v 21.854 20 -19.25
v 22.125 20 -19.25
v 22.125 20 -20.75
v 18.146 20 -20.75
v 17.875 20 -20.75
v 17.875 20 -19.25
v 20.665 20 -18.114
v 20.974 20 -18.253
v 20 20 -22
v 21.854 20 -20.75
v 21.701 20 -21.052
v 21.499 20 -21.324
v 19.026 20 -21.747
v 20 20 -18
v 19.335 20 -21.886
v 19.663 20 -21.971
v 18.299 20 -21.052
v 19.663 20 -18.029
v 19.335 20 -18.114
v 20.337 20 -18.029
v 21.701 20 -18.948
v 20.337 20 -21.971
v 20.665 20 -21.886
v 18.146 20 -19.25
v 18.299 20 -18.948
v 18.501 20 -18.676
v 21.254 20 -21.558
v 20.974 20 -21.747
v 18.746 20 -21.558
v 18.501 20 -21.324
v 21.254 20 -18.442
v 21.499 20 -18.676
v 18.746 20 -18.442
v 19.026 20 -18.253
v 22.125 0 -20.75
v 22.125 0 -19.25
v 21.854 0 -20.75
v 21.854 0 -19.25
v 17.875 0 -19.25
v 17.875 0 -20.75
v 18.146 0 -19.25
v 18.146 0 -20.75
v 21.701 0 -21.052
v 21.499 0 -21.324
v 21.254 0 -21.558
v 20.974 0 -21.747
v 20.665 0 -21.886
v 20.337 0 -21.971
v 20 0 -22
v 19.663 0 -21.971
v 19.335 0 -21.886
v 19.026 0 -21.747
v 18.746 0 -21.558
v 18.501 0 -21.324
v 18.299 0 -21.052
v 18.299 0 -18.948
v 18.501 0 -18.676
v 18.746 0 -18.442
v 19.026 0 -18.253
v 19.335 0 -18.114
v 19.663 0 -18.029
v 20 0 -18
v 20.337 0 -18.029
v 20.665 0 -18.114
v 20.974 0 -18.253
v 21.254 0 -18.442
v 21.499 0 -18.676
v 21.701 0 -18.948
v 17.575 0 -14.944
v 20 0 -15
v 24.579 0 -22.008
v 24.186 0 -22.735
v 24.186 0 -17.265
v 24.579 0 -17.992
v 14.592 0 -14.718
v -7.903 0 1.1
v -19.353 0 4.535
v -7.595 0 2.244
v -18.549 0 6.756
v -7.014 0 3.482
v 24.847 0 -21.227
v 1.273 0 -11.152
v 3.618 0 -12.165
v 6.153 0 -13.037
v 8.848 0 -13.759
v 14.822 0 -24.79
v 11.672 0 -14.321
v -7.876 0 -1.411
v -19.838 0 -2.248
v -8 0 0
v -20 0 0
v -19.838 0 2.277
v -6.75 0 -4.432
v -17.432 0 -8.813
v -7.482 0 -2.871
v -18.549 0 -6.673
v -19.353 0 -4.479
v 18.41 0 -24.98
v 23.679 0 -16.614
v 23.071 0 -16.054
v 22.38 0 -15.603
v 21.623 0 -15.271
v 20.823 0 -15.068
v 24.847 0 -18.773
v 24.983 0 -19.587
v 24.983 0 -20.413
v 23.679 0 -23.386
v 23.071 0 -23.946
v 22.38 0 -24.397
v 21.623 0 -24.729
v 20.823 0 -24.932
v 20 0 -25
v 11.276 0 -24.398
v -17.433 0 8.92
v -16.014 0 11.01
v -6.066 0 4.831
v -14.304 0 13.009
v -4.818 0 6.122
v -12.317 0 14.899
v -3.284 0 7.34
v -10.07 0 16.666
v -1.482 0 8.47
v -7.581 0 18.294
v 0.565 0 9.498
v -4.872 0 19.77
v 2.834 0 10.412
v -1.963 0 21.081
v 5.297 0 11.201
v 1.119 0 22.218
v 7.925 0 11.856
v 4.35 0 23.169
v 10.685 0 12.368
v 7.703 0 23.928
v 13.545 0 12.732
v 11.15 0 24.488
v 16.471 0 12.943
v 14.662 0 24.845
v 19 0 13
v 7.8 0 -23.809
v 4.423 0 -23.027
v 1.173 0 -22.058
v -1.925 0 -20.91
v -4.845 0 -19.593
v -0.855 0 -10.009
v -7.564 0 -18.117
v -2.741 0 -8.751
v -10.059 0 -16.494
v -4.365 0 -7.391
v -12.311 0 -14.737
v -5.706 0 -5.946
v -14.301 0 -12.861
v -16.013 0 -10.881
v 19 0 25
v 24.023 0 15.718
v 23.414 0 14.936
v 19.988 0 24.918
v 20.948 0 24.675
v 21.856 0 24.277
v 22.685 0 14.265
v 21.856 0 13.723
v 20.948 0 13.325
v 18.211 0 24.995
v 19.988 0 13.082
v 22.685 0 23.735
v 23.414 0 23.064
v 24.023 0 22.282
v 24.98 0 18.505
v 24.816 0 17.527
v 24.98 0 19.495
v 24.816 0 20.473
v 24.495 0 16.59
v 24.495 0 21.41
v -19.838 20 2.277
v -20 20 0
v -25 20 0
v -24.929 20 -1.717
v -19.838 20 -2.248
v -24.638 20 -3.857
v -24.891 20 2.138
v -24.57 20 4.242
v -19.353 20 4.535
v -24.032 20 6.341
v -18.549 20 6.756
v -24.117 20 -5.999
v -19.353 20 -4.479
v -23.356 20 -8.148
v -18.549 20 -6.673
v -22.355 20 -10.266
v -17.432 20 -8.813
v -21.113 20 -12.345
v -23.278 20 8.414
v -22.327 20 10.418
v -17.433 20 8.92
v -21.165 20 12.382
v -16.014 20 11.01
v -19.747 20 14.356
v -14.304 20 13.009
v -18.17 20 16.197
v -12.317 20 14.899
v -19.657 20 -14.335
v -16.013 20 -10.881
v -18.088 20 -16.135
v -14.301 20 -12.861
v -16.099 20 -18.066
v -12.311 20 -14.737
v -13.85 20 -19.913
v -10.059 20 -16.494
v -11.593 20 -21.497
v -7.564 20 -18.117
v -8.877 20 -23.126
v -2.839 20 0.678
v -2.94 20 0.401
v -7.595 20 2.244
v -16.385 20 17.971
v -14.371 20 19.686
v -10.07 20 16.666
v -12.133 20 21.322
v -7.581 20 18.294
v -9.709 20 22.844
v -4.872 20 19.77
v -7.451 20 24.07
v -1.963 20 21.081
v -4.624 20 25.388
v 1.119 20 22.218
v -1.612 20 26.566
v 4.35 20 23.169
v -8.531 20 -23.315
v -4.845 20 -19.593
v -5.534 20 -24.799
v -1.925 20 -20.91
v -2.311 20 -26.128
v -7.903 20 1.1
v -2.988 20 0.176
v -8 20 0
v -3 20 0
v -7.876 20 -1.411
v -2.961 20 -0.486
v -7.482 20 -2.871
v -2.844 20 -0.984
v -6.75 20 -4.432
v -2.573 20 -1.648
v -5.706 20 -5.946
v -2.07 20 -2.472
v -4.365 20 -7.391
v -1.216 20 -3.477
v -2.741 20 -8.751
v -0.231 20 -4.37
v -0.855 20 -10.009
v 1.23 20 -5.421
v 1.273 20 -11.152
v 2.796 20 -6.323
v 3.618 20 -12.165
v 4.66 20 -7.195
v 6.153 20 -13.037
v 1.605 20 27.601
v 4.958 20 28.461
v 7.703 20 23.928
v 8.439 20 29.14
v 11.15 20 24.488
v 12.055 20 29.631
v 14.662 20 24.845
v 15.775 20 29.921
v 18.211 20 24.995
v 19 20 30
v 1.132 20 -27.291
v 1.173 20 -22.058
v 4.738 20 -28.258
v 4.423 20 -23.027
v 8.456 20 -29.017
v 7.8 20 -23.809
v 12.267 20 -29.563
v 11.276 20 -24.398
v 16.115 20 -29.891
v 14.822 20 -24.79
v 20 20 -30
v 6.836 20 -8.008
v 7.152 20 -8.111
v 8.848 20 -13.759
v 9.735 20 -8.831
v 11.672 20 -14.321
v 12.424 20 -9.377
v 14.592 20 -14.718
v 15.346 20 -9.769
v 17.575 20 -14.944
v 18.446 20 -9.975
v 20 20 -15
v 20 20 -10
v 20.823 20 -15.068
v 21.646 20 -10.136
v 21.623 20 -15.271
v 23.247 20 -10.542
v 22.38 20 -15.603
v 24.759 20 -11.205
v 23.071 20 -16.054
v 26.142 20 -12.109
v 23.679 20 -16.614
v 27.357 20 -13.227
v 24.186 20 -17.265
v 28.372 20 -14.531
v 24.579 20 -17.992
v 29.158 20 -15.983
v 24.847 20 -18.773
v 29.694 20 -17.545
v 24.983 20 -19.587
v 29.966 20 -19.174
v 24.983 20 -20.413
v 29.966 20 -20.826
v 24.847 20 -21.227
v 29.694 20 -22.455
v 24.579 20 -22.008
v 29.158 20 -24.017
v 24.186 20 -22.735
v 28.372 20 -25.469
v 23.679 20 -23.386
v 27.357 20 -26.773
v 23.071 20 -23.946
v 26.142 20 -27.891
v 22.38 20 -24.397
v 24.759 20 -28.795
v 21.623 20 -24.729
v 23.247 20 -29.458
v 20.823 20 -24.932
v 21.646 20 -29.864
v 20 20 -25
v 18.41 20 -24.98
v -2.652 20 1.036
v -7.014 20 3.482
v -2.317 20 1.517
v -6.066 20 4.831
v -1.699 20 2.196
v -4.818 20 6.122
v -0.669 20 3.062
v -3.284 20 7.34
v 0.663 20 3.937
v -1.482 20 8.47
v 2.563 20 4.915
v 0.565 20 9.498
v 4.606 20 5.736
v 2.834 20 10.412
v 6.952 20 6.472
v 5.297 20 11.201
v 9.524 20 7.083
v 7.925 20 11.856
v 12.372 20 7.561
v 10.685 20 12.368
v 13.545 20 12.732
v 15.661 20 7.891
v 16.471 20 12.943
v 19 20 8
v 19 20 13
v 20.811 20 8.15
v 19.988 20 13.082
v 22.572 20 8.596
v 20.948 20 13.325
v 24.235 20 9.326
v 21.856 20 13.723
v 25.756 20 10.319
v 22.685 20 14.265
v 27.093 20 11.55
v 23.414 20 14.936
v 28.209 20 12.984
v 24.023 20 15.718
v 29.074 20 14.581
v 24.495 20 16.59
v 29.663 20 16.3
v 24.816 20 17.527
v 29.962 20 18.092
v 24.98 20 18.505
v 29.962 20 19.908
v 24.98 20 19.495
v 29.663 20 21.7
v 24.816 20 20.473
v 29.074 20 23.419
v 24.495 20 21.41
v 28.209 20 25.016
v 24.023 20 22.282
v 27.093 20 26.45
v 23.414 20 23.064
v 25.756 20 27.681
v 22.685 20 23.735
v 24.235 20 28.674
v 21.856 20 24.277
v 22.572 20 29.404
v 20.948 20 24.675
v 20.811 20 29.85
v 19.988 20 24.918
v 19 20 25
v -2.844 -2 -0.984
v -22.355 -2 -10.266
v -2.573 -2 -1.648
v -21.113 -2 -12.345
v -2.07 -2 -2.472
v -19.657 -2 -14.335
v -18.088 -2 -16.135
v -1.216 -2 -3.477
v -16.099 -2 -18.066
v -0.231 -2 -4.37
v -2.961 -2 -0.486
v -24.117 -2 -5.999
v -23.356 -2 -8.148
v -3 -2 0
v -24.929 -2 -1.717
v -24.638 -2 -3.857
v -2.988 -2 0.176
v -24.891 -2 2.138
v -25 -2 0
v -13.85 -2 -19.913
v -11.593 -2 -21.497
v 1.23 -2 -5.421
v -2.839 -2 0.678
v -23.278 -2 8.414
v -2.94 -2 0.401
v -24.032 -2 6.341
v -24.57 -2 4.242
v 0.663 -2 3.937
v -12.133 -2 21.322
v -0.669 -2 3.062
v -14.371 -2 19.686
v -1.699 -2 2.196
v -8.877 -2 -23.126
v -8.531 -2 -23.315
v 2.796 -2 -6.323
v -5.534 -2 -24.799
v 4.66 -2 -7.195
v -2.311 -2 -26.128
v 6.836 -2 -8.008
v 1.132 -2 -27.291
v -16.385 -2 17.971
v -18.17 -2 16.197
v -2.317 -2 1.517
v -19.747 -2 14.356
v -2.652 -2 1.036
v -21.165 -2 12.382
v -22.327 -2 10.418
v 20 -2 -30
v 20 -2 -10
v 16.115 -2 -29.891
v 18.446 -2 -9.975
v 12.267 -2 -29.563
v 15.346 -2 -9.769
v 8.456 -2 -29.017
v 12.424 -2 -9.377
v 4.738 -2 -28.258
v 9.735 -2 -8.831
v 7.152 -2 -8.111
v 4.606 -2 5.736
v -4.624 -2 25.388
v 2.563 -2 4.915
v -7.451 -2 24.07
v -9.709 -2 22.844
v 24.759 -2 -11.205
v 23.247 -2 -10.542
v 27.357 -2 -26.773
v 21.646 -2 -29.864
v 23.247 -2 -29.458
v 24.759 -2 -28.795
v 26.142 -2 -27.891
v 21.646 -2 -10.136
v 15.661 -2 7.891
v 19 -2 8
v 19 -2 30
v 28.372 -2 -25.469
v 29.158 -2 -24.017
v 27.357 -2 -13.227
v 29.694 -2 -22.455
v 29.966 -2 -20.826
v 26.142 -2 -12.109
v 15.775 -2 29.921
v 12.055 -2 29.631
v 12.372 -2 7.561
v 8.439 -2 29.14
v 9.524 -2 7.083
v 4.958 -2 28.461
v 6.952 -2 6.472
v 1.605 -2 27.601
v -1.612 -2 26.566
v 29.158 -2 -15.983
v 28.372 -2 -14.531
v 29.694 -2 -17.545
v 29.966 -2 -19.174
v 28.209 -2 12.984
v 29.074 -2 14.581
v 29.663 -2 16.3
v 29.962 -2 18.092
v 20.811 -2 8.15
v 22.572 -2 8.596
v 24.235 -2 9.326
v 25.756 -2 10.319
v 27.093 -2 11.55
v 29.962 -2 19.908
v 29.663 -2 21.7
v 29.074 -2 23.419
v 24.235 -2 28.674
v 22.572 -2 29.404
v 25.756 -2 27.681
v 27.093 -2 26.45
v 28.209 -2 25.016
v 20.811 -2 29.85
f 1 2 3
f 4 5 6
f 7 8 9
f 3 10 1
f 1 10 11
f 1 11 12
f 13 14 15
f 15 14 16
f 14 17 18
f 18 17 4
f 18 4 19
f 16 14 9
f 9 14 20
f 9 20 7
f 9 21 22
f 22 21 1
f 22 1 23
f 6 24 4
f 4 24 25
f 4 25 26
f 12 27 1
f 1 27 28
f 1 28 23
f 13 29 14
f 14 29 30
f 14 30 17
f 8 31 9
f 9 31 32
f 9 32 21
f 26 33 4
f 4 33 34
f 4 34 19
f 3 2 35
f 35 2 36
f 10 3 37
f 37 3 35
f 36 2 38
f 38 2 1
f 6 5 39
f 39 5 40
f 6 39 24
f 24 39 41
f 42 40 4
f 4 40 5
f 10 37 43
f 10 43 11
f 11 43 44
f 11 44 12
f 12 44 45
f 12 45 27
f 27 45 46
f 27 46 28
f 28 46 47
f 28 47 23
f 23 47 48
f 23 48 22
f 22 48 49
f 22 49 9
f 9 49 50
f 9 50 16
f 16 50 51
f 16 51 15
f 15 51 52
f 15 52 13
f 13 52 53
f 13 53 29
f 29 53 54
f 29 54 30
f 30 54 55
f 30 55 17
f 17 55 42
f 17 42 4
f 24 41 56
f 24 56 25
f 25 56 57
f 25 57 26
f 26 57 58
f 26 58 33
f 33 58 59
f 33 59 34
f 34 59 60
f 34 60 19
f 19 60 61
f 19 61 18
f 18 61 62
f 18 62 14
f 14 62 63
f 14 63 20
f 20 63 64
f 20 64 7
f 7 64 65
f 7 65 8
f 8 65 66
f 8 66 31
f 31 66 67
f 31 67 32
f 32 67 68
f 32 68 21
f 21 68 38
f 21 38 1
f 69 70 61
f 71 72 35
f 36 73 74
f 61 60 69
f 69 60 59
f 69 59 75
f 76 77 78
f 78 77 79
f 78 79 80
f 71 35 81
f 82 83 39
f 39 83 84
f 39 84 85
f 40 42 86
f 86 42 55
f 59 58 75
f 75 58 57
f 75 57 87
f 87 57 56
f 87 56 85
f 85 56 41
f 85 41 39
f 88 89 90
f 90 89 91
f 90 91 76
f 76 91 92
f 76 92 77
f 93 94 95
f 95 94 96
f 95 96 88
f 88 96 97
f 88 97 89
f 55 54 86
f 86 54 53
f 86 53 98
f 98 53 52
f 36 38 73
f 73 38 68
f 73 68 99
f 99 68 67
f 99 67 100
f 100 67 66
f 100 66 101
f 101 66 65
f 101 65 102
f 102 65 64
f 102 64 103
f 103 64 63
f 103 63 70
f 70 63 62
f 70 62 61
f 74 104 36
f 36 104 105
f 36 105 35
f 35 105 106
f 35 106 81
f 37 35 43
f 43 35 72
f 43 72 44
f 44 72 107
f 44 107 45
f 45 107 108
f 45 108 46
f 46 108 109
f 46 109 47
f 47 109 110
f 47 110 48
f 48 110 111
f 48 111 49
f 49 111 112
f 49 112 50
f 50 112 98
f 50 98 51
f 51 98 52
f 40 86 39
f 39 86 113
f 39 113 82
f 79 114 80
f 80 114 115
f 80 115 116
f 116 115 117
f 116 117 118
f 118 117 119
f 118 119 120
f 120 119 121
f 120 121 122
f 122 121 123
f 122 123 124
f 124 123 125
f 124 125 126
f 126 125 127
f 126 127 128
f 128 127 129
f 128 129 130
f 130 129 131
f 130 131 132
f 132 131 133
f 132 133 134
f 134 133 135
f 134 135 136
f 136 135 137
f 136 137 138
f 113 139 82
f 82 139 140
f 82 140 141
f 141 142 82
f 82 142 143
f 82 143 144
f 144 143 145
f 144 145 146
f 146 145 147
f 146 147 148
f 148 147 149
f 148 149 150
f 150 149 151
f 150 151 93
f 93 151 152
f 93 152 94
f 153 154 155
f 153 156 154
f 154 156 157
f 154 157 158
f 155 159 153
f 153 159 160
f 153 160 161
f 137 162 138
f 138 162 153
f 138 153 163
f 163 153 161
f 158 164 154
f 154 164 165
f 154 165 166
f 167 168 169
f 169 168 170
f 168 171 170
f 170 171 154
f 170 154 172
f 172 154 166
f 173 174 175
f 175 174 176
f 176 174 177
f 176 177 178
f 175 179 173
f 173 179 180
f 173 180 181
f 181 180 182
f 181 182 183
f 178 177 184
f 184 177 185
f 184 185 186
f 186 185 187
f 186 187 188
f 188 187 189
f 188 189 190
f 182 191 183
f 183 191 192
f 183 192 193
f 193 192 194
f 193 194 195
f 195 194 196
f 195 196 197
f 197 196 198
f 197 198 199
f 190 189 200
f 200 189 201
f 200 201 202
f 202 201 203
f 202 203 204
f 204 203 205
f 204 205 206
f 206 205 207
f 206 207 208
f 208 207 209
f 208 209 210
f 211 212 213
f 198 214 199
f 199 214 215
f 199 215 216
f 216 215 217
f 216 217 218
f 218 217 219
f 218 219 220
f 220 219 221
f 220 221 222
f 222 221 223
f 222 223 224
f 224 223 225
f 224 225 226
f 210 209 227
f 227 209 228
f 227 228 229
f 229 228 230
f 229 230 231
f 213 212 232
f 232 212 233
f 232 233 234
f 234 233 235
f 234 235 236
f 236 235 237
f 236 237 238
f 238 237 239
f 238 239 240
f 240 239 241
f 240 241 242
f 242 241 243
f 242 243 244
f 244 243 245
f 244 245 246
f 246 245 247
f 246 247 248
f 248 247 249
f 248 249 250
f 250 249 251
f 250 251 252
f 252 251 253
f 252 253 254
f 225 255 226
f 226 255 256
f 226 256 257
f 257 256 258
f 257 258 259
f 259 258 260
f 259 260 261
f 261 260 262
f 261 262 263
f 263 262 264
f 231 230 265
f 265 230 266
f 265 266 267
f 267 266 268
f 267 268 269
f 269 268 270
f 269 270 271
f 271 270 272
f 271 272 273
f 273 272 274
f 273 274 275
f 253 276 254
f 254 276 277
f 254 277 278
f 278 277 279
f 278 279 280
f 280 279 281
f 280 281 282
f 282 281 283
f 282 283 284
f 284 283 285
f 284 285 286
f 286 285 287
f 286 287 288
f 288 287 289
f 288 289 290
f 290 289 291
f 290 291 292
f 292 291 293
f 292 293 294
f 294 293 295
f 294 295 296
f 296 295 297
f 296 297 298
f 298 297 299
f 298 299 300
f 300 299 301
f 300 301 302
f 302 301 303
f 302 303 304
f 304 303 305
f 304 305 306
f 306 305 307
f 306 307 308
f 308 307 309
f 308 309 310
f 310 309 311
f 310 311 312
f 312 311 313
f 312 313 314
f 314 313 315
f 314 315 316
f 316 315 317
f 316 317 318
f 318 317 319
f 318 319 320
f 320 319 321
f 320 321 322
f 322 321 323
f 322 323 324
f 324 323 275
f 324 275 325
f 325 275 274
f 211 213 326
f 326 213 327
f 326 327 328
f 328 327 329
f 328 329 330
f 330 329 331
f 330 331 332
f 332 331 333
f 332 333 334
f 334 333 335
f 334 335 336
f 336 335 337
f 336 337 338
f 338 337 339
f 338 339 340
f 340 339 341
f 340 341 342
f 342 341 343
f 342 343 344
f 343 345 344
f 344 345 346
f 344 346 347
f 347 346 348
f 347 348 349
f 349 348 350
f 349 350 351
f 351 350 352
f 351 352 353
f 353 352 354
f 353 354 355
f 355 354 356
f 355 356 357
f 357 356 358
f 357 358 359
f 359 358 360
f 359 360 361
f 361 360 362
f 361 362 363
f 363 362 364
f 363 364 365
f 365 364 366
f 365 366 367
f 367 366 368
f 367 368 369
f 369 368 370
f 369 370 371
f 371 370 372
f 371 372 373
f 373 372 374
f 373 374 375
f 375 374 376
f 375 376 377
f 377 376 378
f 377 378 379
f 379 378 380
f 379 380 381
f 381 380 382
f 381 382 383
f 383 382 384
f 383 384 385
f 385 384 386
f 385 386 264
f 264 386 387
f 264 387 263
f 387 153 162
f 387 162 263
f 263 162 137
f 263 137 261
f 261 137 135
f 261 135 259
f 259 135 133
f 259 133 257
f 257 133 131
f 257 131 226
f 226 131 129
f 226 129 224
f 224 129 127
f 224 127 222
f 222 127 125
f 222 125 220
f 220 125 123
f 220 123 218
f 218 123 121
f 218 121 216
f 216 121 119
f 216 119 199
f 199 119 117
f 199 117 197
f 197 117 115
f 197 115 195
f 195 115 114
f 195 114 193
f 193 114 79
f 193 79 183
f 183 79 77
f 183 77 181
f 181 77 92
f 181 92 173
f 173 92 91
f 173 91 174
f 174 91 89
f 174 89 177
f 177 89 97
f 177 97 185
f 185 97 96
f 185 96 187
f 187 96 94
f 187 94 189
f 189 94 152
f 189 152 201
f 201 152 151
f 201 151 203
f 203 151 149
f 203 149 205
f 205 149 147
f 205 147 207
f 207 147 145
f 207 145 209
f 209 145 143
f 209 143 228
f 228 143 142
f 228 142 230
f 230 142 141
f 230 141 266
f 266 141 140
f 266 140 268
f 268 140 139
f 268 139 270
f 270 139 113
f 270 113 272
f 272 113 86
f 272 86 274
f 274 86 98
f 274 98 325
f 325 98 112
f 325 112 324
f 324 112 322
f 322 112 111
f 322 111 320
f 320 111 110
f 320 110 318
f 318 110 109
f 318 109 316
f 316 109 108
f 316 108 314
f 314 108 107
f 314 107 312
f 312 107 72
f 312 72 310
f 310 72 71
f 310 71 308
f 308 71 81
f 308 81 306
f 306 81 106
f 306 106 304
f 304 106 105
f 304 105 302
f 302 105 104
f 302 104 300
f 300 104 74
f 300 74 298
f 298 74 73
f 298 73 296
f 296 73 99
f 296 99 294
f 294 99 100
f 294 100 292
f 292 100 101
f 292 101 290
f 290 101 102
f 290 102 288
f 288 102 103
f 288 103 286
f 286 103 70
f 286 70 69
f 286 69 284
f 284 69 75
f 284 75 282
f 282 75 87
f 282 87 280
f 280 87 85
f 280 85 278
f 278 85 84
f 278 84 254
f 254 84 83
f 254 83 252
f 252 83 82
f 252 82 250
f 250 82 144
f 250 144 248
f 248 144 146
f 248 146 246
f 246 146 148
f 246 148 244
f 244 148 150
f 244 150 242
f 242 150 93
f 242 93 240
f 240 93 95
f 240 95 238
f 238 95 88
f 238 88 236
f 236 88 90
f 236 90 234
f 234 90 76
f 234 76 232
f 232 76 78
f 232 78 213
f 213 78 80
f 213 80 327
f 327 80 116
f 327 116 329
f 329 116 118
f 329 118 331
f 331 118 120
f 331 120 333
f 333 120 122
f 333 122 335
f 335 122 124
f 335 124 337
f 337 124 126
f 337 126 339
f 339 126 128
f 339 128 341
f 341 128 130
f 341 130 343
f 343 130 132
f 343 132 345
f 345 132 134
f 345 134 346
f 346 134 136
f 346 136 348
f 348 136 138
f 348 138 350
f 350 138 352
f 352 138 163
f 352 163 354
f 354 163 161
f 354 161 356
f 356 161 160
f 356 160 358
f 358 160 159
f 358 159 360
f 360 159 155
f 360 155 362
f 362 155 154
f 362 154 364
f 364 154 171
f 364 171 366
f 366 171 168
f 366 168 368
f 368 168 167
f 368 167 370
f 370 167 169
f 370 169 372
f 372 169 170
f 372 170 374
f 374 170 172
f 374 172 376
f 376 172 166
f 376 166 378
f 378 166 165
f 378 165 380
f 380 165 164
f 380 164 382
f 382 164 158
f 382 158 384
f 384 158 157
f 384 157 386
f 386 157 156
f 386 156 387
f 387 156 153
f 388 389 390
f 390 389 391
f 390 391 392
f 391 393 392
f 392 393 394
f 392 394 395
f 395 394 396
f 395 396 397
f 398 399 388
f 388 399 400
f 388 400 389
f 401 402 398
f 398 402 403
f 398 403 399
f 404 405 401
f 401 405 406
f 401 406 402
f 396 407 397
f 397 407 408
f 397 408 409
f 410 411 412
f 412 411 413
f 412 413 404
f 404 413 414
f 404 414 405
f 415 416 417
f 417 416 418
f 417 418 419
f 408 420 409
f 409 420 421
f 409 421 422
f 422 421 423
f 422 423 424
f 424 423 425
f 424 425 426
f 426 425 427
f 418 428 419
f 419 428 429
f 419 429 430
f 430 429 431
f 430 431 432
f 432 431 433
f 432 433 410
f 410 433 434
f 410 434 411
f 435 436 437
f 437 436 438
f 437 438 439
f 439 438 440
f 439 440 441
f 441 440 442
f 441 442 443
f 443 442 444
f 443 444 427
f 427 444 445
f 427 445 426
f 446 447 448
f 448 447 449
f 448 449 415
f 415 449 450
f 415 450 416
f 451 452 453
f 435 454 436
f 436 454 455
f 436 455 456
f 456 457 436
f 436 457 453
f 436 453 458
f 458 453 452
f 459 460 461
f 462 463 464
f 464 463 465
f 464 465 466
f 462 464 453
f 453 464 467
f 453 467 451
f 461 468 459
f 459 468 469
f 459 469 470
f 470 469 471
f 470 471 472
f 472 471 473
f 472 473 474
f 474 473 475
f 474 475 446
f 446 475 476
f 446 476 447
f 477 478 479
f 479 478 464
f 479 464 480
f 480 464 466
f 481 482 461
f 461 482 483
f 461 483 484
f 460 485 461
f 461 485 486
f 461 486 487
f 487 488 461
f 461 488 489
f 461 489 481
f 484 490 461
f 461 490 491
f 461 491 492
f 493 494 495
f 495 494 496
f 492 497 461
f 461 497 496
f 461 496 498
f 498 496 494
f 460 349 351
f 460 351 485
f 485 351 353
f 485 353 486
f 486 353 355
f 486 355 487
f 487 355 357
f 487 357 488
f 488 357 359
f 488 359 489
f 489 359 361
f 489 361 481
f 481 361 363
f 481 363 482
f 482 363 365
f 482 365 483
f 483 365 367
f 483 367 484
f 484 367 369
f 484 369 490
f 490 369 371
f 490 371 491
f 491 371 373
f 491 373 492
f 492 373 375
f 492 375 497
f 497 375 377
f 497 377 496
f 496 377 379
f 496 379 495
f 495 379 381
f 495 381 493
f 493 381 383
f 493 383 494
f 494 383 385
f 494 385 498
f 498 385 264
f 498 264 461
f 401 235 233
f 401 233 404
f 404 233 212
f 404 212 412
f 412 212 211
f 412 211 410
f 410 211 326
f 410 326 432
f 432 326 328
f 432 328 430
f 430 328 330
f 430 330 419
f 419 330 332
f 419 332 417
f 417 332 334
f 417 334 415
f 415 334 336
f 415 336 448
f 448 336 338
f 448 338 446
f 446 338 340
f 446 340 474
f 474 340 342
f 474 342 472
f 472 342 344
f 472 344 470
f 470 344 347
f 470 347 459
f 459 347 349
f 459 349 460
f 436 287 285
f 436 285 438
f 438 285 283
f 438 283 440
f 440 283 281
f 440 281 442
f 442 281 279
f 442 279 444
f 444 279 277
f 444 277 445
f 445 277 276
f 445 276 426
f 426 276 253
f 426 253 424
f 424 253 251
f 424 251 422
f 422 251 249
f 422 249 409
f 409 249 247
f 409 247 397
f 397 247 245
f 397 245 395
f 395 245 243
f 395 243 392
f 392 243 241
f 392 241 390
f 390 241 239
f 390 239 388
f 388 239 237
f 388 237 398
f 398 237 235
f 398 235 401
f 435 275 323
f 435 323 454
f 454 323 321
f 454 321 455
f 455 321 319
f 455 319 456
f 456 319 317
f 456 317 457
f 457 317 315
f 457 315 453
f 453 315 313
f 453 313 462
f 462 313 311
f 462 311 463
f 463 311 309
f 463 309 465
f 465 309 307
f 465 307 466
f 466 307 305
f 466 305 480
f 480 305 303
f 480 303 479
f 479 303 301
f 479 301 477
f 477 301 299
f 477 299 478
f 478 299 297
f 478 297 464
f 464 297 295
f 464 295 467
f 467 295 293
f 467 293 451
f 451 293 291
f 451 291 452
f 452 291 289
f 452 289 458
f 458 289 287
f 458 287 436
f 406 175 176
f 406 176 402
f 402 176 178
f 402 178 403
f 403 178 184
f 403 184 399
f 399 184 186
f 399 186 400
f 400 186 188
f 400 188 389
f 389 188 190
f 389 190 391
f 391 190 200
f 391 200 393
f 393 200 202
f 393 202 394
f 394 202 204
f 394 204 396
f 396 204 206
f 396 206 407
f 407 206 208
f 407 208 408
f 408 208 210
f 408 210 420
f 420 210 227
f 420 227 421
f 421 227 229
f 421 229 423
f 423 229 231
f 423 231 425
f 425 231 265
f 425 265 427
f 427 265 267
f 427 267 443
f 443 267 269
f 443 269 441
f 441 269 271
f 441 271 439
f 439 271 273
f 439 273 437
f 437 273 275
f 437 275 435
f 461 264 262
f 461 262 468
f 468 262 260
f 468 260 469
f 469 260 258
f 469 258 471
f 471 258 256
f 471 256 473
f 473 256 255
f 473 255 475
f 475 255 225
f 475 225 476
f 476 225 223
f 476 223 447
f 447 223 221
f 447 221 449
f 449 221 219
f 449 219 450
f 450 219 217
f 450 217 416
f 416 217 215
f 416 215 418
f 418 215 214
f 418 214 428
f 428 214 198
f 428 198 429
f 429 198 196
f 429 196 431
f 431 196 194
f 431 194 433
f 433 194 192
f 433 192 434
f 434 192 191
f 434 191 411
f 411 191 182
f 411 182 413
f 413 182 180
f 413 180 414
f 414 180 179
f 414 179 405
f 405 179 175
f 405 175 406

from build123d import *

# Parameters (mm, degrees)
SKETCH1_W           = 4.25
SKETCH1_H           = 1.5
SKETCH1_R           = 2
BOSS_EXTRUDE1_DEPTH = 20
FILLET1_R           = 20
CUT_EXTRUDE4_DEPTH  = 57.718365948
BOSS_EXTRUDE3_DEPTH = 2


with BuildPart() as part:
    # Sketch1 → Boss-Extrude1 (new body)
    # profile 1 of 3: a face of its own
    with BuildSketch(Plane(origin=(0, 0, 0), x_dir=(1, 0, 0), z_dir=(0, 1, 0))):
        with BuildLine():
            ThreePointArc((19, -35.199431814), (40, 0), (19, 35.199431814))
            add(Edge.make_bspline(
                [(19, 35.199431814), (-31, 35.199431814), (-31, 0), (-31, -35.199431814), (19, -35.199431814)],
                knots=[4.71238898, 4.71238898, 4.71238898, 6.283185307, 6.283185307, 7.853981634, 7.853981634, 7.853981634], degree=2, weights=[1, 0.707106781, 1, 0.707106781, 1]))
        make_face()
        with BuildLine():
            add(Edge.make_bspline(
                [(-20, 0), (-20, -25), (19, -25)],
                knots=[3.141592654, 3.141592654, 3.141592654, 4.71238898, 4.71238898, 4.71238898], degree=2, weights=[1, 0.707106781, 1]))
            ThreePointArc((19, -25), (25, -19), (19, -13))
            add(Edge.make_bspline(
                [(-8, 0), (-8, -13), (19, -13)],
                knots=[3.141592654, 3.141592654, 3.141592654, 4.71238898, 4.71238898, 4.71238898], degree=2, weights=[1, 0.707106781, 1]))
            add(Edge.make_bspline(
                [(20, 15), (-8, 15), (-8, 0)],
                knots=[4.71238898, 4.71238898, 4.71238898, 6.283185307, 6.283185307, 6.283185307], degree=2, weights=[1, 0.707106781, 1]))
            ThreePointArc((20, 15), (25, 20), (20, 25))
            add(Edge.make_bspline(
                [(20, 25), (-20, 25), (-20, 0)],
                knots=[4.71238898, 4.71238898, 4.71238898, 6.283185307, 6.283185307, 6.283185307], degree=2, weights=[1, 0.707106781, 1]))
        make_face(mode=Mode.SUBTRACT)
    # profile 2 of 3: a face of its own
    with BuildSketch(Plane(origin=(0, 0, 0), x_dir=(1, 0, 0), z_dir=(0, 1, 0))):
        with Locations((20, 20)):
            Rectangle(SKETCH1_W, SKETCH1_H)
    # profile 3 of 3: a face of its own
    with BuildSketch(Plane(origin=(0, 0, 0), x_dir=(1, 0, 0), z_dir=(0, 1, 0))):
        with Locations((20, 20)):
            Circle(SKETCH1_R)
    extrude(amount=BOSS_EXTRUDE1_DEPTH)

    # Fillet1
    fillet1_edges = [part.edges().sort_by_distance(p)[0] for p in [
        (19, 10, 35.199431814),
        (19, 10, -35.199431814),
    ]]
    fillet(fillet1_edges, radius=FILLET1_R)

    # Sketch7 → Cut-Extrude4 (cut, through all)
    with BuildSketch(Plane(origin=(0, 20, 0), x_dir=(1, 0, 0), z_dir=(0, 1, 0))):
        with BuildLine():
            ThreePointArc((26.715732964, -29.770280687), (40, 0), (26.715732964, 29.770280687))
            ThreePointArc((26.715732964, 29.770280687), (19.455130595, 33.933063336), (11.126819445, 34.760311515))
            add(Edge.make_bspline(
                [(11.126819445, 34.760311515), (-31, 30.031450822), (-31, 0), (-31, -30.031450822), (11.126819445, -34.760311515)],
                knots=[4.870510674, 4.870510674, 4.870510674, 6.283185307, 6.283185307, 7.695859941, 7.695859941, 7.695859941], degree=2, weights=[1, 0.760744245, 1, 0.760744245, 1]))
            ThreePointArc((11.126819445, -34.760311515), (19.455130595, -33.933063336), (26.715732964, -29.770280687))
        make_face()
        with BuildLine():
            ThreePointArc((19, -30), (30, -19), (19, -8))
            add(Edge.make_bspline(
                [(19, -8), (16.949769903, -8), (14.919635491, -7.878666683), (10.901282891, -7.382919134), (8.912757648, -7.010358838), (5.971139447, -6.202945035), (4.997539224, -5.89190988), (3.068908542, -5.157719425), (2.126517993, -4.74019977), (0.764362392, -4.004141758), (0.322031311, -3.741869686), (-0.532189619, -3.173382456), (-0.944387188, -2.867611504), (-1.723714217, -2.19101206), (-2.091329975, -1.822097486), (-2.556980251, -1.19837062), (-2.695757658, -0.981738824), (-2.860509133, -0.633755004), (-2.908158215, -0.513903902), (-2.97875361, -0.261094229), (-3, -0.131812819), (-3, 0)],
                knots=[0, 0, 0, 0, 0.25, 0.25, 0.5, 0.5, 0.625, 0.625, 0.75, 0.75, 0.8125, 0.8125, 0.875, 0.875, 0.9375, 0.9375, 0.96875, 0.96875, 0.984375, 0.984375, 1, 1, 1, 1], degree=3))
            add(Edge.make_bspline(
                [(-3, 0), (-3, 0.285031799), (-2.959631015, 0.562359659), (-2.814885588, 1.104800319), (-2.709748408, 1.371089121), (-2.461272148, 1.874181792), (-2.317184542, 2.114182824), (-1.99963354, 2.577098674), (-1.825175914, 2.800814346), (-1.276267896, 3.439596997), (-0.87480875, 3.82674963), (-0.024552048, 4.54947581), (0.42675507, 4.885852158), (1.821869936, 5.823760621), (2.798624207, 6.352463398), (4.813129372, 7.283675579), (5.852594172, 7.684922548), (7.977223824, 8.383518933), (9.048140791, 8.676054913), (11.203966236, 9.168802291), (12.288911447, 9.368771294), (15.562468477, 9.845143032), (17.769500187, 10), (20, 10)],
                knots=[0, 0, 0, 0, 0.03125, 0.03125, 0.0625, 0.0625, 0.09375, 0.09375, 0.125, 0.125, 0.1875, 0.1875, 0.25, 0.25, 0.375, 0.375, 0.5, 0.5, 0.625, 0.625, 0.75, 0.75, 1, 1, 1, 1], degree=3))
            ThreePointArc((20, 10), (30, 20), (20, 30))
            add(Edge.make_bspline(
                [(20, 30), (17.506885485, 30), (15.035786069, 29.865839689), (10.137169124, 29.331930469), (7.709631756, 28.932302453), (4.103591326, 28.117951262), (2.907486905, 27.810491003), (1.122878, 27.291116637), (0.529602547, 27.108276881), (-0.653605213, 26.722224199), (-1.244583727, 26.518618911), (-4.175085126, 25.452580827), (-6.441879772, 24.44880061), (-9.705268999, 22.677039858), (-10.77010477, 22.041792974), (-12.847558758, 20.669732591), (-13.863683808, 19.929559071), (-15.797123556, 18.361792453), (-16.718574276, 17.532042734), (-18.460001381, 15.769730163), (-19.280080654, 14.837271556), (-20.421371096, 13.348583223), (-20.787483847, 12.83616717), (-21.476917659, 11.794452355), (-21.801615407, 11.26350717), (-22.713235734, 9.639191125), (-23.238041794, 8.514519366), (-23.885889726, 6.757286776), (-24.079223508, 6.156963169), (-24.411208155, 4.947908362), (-24.550157367, 4.339294596), (-24.885234569, 2.501097336), (-25, 1.259219511), (-25, 0)],
                knots=[0, 0, 0, 0, 0.125, 0.125, 0.25, 0.25, 0.3125, 0.3125, 0.34375, 0.34375, 0.375, 0.375, 0.5, 0.5, 0.5625, 0.5625, 0.625, 0.625, 0.6875, 0.6875, 0.75, 0.75, 0.78125, 0.78125, 0.8125, 0.8125, 0.875, 0.875, 0.90625, 0.90625, 0.9375, 0.9375, 1, 1, 1, 1], degree=3))
            add(Edge.make_bspline(
                [(-25, 0), (-25, -1.240308905), (-24.890770056, -2.461968136), (-24.573162079, -4.268203825), (-24.441569921, -4.865890529), (-24.127593634, -6.052591833), (-23.944778823, -6.642798298), (-23.323001596, -8.392705426), (-22.818651301, -9.511975262), (-21.942628691, -11.127913821), (-21.630615899, -11.656018714), (-20.968244179, -12.692022913), (-20.616907359, -13.201217603), (-19.5140031, -14.690401179), (-18.720794555, -15.623701529), (-17.035314836, -17.388590032), (-16.14294207, -18.220073874), (-14.737950827, -19.399090724), (-14.258510207, -19.780688978), (-13.27835672, -20.522044282), (-12.776381285, -20.882617535), (-11.253117844, -21.923790649), (-10.212610594, -22.565910833), (-7.025562968, -24.355980763), (-4.814122151, -25.368940752), (-1.387363071, -26.660422544), (-0.225164261, -27.05297986), (2.128195088, -27.762814909), (3.310723323, -28.077620201), (6.874523869, -28.910820054), (9.271893934, -29.318808502), (14.106192667, -29.86347351), (16.543143218, -30), (19, -30)],
                knots=[0, 0, 0, 0, 0.0625, 0.0625, 0.09375, 0.09375, 0.125, 0.125, 0.1875, 0.1875, 0.21875, 0.21875, 0.25, 0.25, 0.3125, 0.3125, 0.375, 0.375, 0.40625, 0.40625, 0.4375, 0.4375, 0.5, 0.5, 0.625, 0.625, 0.6875, 0.6875, 0.75, 0.75, 0.875, 0.875, 1, 1, 1, 1], degree=3))
        make_face(mode=Mode.SUBTRACT)
    extrude(amount=-CUT_EXTRUDE4_DEPTH, mode=Mode.SUBTRACT)

    # Sketch8 → Boss-Extrude3 (add)
    with BuildSketch(Plane(origin=(0, 0, 0), x_dir=(1, 0, 0), z_dir=(0, 1, 0))):
        with BuildLine():
            ThreePointArc((19, -30), (30, -19), (19, -8))
            add(Edge.make_bspline(
                [(19, -8), (16.949769903, -8), (14.919635491, -7.878666683), (10.901282891, -7.382919134), (8.912757648, -7.010358838), (5.971139447, -6.202945035), (4.997539224, -5.89190988), (3.068908542, -5.157719425), (2.126517993, -4.74019977), (0.764362392, -4.004141758), (0.322031311, -3.741869686), (-0.532189619, -3.173382456), (-0.944387188, -2.867611504), (-1.723714217, -2.19101206), (-2.091329975, -1.822097486), (-2.556980251, -1.19837062), (-2.695757658, -0.981738824), (-2.860509133, -0.633755004), (-2.908158215, -0.513903902), (-2.97875361, -0.261094229), (-3, -0.131812819), (-3, 0)],
                knots=[0, 0, 0, 0, 0.25, 0.25, 0.5, 0.5, 0.625, 0.625, 0.75, 0.75, 0.8125, 0.8125, 0.875, 0.875, 0.9375, 0.9375, 0.96875, 0.96875, 0.984375, 0.984375, 1, 1, 1, 1], degree=3))
            add(Edge.make_bspline(
                [(-3, 0), (-3, 0.285031799), (-2.959631015, 0.562359659), (-2.814885588, 1.104800319), (-2.709748408, 1.371089121), (-2.461272148, 1.874181792), (-2.317184542, 2.114182824), (-1.99963354, 2.577098674), (-1.825175914, 2.800814346), (-1.276267896, 3.439596997), (-0.87480875, 3.82674963), (-0.024552048, 4.54947581), (0.42675507, 4.885852158), (1.821869936, 5.823760621), (2.798624207, 6.352463398), (4.813129372, 7.283675579), (5.852594172, 7.684922548), (7.977223824, 8.383518933), (9.048140791, 8.676054913), (11.203966236, 9.168802291), (12.288911447, 9.368771294), (15.562468477, 9.845143032), (17.769500187, 10), (20, 10)],
                knots=[0, 0, 0, 0, 0.03125, 0.03125, 0.0625, 0.0625, 0.09375, 0.09375, 0.125, 0.125, 0.1875, 0.1875, 0.25, 0.25, 0.375, 0.375, 0.5, 0.5, 0.625, 0.625, 0.75, 0.75, 1, 1, 1, 1], degree=3))
            ThreePointArc((20, 10), (30, 20), (20, 30))
            add(Edge.make_bspline(
                [(20, 30), (17.506885485, 30), (15.035786069, 29.865839689), (10.137169124, 29.331930469), (7.709631756, 28.932302453), (4.103591326, 28.117951262), (2.907486905, 27.810491003), (1.122878, 27.291116637), (0.529602547, 27.108276881), (-0.653605213, 26.722224199), (-1.244583727, 26.518618911), (-4.175085126, 25.452580827), (-6.441879772, 24.44880061), (-9.705268999, 22.677039858), (-10.77010477, 22.041792974), (-12.847558758, 20.669732591), (-13.863683808, 19.929559071), (-15.797123556, 18.361792453), (-16.718574276, 17.532042734), (-18.460001381, 15.769730163), (-19.280080654, 14.837271556), (-20.421371096, 13.348583223), (-20.787483847, 12.83616717), (-21.476917659, 11.794452355), (-21.801615407, 11.26350717), (-22.713235734, 9.639191125), (-23.238041794, 8.514519366), (-23.885889726, 6.757286776), (-24.079223508, 6.156963169), (-24.411208155, 4.947908362), (-24.550157367, 4.339294596), (-24.885234569, 2.501097336), (-25, 1.259219511), (-25, 0)],
                knots=[0, 0, 0, 0, 0.125, 0.125, 0.25, 0.25, 0.3125, 0.3125, 0.34375, 0.34375, 0.375, 0.375, 0.5, 0.5, 0.5625, 0.5625, 0.625, 0.625, 0.6875, 0.6875, 0.75, 0.75, 0.78125, 0.78125, 0.8125, 0.8125, 0.875, 0.875, 0.90625, 0.90625, 0.9375, 0.9375, 1, 1, 1, 1], degree=3))
            add(Edge.make_bspline(
                [(-25, 0), (-25, -1.240308905), (-24.890770056, -2.461968136), (-24.573162079, -4.268203825), (-24.441569921, -4.865890529), (-24.127593634, -6.052591833), (-23.944778823, -6.642798298), (-23.323001596, -8.392705426), (-22.818651301, -9.511975262), (-21.942628691, -11.127913821), (-21.630615899, -11.656018714), (-20.968244179, -12.692022913), (-20.616907359, -13.201217603), (-19.5140031, -14.690401179), (-18.720794555, -15.623701529), (-17.035314836, -17.388590032), (-16.14294207, -18.220073874), (-14.737950827, -19.399090724), (-14.258510207, -19.780688978), (-13.27835672, -20.522044282), (-12.776381285, -20.882617535), (-11.253117844, -21.923790649), (-10.212610594, -22.565910833), (-7.025562968, -24.355980763), (-4.814122151, -25.368940752), (-1.387363071, -26.660422544), (-0.225164261, -27.05297986), (2.128195088, -27.762814909), (3.310723323, -28.077620201), (6.874523869, -28.910820054), (9.271893934, -29.318808502), (14.106192667, -29.86347351), (16.543143218, -30), (19, -30)],
                knots=[0, 0, 0, 0, 0.0625, 0.0625, 0.09375, 0.09375, 0.125, 0.125, 0.1875, 0.1875, 0.21875, 0.21875, 0.25, 0.25, 0.3125, 0.3125, 0.375, 0.375, 0.40625, 0.40625, 0.4375, 0.4375, 0.5, 0.5, 0.625, 0.625, 0.6875, 0.6875, 0.75, 0.75, 0.875, 0.875, 1, 1, 1, 1], degree=3))
        make_face()
    extrude(amount=-BOSS_EXTRUDE3_DEPTH)


solid = part.part
